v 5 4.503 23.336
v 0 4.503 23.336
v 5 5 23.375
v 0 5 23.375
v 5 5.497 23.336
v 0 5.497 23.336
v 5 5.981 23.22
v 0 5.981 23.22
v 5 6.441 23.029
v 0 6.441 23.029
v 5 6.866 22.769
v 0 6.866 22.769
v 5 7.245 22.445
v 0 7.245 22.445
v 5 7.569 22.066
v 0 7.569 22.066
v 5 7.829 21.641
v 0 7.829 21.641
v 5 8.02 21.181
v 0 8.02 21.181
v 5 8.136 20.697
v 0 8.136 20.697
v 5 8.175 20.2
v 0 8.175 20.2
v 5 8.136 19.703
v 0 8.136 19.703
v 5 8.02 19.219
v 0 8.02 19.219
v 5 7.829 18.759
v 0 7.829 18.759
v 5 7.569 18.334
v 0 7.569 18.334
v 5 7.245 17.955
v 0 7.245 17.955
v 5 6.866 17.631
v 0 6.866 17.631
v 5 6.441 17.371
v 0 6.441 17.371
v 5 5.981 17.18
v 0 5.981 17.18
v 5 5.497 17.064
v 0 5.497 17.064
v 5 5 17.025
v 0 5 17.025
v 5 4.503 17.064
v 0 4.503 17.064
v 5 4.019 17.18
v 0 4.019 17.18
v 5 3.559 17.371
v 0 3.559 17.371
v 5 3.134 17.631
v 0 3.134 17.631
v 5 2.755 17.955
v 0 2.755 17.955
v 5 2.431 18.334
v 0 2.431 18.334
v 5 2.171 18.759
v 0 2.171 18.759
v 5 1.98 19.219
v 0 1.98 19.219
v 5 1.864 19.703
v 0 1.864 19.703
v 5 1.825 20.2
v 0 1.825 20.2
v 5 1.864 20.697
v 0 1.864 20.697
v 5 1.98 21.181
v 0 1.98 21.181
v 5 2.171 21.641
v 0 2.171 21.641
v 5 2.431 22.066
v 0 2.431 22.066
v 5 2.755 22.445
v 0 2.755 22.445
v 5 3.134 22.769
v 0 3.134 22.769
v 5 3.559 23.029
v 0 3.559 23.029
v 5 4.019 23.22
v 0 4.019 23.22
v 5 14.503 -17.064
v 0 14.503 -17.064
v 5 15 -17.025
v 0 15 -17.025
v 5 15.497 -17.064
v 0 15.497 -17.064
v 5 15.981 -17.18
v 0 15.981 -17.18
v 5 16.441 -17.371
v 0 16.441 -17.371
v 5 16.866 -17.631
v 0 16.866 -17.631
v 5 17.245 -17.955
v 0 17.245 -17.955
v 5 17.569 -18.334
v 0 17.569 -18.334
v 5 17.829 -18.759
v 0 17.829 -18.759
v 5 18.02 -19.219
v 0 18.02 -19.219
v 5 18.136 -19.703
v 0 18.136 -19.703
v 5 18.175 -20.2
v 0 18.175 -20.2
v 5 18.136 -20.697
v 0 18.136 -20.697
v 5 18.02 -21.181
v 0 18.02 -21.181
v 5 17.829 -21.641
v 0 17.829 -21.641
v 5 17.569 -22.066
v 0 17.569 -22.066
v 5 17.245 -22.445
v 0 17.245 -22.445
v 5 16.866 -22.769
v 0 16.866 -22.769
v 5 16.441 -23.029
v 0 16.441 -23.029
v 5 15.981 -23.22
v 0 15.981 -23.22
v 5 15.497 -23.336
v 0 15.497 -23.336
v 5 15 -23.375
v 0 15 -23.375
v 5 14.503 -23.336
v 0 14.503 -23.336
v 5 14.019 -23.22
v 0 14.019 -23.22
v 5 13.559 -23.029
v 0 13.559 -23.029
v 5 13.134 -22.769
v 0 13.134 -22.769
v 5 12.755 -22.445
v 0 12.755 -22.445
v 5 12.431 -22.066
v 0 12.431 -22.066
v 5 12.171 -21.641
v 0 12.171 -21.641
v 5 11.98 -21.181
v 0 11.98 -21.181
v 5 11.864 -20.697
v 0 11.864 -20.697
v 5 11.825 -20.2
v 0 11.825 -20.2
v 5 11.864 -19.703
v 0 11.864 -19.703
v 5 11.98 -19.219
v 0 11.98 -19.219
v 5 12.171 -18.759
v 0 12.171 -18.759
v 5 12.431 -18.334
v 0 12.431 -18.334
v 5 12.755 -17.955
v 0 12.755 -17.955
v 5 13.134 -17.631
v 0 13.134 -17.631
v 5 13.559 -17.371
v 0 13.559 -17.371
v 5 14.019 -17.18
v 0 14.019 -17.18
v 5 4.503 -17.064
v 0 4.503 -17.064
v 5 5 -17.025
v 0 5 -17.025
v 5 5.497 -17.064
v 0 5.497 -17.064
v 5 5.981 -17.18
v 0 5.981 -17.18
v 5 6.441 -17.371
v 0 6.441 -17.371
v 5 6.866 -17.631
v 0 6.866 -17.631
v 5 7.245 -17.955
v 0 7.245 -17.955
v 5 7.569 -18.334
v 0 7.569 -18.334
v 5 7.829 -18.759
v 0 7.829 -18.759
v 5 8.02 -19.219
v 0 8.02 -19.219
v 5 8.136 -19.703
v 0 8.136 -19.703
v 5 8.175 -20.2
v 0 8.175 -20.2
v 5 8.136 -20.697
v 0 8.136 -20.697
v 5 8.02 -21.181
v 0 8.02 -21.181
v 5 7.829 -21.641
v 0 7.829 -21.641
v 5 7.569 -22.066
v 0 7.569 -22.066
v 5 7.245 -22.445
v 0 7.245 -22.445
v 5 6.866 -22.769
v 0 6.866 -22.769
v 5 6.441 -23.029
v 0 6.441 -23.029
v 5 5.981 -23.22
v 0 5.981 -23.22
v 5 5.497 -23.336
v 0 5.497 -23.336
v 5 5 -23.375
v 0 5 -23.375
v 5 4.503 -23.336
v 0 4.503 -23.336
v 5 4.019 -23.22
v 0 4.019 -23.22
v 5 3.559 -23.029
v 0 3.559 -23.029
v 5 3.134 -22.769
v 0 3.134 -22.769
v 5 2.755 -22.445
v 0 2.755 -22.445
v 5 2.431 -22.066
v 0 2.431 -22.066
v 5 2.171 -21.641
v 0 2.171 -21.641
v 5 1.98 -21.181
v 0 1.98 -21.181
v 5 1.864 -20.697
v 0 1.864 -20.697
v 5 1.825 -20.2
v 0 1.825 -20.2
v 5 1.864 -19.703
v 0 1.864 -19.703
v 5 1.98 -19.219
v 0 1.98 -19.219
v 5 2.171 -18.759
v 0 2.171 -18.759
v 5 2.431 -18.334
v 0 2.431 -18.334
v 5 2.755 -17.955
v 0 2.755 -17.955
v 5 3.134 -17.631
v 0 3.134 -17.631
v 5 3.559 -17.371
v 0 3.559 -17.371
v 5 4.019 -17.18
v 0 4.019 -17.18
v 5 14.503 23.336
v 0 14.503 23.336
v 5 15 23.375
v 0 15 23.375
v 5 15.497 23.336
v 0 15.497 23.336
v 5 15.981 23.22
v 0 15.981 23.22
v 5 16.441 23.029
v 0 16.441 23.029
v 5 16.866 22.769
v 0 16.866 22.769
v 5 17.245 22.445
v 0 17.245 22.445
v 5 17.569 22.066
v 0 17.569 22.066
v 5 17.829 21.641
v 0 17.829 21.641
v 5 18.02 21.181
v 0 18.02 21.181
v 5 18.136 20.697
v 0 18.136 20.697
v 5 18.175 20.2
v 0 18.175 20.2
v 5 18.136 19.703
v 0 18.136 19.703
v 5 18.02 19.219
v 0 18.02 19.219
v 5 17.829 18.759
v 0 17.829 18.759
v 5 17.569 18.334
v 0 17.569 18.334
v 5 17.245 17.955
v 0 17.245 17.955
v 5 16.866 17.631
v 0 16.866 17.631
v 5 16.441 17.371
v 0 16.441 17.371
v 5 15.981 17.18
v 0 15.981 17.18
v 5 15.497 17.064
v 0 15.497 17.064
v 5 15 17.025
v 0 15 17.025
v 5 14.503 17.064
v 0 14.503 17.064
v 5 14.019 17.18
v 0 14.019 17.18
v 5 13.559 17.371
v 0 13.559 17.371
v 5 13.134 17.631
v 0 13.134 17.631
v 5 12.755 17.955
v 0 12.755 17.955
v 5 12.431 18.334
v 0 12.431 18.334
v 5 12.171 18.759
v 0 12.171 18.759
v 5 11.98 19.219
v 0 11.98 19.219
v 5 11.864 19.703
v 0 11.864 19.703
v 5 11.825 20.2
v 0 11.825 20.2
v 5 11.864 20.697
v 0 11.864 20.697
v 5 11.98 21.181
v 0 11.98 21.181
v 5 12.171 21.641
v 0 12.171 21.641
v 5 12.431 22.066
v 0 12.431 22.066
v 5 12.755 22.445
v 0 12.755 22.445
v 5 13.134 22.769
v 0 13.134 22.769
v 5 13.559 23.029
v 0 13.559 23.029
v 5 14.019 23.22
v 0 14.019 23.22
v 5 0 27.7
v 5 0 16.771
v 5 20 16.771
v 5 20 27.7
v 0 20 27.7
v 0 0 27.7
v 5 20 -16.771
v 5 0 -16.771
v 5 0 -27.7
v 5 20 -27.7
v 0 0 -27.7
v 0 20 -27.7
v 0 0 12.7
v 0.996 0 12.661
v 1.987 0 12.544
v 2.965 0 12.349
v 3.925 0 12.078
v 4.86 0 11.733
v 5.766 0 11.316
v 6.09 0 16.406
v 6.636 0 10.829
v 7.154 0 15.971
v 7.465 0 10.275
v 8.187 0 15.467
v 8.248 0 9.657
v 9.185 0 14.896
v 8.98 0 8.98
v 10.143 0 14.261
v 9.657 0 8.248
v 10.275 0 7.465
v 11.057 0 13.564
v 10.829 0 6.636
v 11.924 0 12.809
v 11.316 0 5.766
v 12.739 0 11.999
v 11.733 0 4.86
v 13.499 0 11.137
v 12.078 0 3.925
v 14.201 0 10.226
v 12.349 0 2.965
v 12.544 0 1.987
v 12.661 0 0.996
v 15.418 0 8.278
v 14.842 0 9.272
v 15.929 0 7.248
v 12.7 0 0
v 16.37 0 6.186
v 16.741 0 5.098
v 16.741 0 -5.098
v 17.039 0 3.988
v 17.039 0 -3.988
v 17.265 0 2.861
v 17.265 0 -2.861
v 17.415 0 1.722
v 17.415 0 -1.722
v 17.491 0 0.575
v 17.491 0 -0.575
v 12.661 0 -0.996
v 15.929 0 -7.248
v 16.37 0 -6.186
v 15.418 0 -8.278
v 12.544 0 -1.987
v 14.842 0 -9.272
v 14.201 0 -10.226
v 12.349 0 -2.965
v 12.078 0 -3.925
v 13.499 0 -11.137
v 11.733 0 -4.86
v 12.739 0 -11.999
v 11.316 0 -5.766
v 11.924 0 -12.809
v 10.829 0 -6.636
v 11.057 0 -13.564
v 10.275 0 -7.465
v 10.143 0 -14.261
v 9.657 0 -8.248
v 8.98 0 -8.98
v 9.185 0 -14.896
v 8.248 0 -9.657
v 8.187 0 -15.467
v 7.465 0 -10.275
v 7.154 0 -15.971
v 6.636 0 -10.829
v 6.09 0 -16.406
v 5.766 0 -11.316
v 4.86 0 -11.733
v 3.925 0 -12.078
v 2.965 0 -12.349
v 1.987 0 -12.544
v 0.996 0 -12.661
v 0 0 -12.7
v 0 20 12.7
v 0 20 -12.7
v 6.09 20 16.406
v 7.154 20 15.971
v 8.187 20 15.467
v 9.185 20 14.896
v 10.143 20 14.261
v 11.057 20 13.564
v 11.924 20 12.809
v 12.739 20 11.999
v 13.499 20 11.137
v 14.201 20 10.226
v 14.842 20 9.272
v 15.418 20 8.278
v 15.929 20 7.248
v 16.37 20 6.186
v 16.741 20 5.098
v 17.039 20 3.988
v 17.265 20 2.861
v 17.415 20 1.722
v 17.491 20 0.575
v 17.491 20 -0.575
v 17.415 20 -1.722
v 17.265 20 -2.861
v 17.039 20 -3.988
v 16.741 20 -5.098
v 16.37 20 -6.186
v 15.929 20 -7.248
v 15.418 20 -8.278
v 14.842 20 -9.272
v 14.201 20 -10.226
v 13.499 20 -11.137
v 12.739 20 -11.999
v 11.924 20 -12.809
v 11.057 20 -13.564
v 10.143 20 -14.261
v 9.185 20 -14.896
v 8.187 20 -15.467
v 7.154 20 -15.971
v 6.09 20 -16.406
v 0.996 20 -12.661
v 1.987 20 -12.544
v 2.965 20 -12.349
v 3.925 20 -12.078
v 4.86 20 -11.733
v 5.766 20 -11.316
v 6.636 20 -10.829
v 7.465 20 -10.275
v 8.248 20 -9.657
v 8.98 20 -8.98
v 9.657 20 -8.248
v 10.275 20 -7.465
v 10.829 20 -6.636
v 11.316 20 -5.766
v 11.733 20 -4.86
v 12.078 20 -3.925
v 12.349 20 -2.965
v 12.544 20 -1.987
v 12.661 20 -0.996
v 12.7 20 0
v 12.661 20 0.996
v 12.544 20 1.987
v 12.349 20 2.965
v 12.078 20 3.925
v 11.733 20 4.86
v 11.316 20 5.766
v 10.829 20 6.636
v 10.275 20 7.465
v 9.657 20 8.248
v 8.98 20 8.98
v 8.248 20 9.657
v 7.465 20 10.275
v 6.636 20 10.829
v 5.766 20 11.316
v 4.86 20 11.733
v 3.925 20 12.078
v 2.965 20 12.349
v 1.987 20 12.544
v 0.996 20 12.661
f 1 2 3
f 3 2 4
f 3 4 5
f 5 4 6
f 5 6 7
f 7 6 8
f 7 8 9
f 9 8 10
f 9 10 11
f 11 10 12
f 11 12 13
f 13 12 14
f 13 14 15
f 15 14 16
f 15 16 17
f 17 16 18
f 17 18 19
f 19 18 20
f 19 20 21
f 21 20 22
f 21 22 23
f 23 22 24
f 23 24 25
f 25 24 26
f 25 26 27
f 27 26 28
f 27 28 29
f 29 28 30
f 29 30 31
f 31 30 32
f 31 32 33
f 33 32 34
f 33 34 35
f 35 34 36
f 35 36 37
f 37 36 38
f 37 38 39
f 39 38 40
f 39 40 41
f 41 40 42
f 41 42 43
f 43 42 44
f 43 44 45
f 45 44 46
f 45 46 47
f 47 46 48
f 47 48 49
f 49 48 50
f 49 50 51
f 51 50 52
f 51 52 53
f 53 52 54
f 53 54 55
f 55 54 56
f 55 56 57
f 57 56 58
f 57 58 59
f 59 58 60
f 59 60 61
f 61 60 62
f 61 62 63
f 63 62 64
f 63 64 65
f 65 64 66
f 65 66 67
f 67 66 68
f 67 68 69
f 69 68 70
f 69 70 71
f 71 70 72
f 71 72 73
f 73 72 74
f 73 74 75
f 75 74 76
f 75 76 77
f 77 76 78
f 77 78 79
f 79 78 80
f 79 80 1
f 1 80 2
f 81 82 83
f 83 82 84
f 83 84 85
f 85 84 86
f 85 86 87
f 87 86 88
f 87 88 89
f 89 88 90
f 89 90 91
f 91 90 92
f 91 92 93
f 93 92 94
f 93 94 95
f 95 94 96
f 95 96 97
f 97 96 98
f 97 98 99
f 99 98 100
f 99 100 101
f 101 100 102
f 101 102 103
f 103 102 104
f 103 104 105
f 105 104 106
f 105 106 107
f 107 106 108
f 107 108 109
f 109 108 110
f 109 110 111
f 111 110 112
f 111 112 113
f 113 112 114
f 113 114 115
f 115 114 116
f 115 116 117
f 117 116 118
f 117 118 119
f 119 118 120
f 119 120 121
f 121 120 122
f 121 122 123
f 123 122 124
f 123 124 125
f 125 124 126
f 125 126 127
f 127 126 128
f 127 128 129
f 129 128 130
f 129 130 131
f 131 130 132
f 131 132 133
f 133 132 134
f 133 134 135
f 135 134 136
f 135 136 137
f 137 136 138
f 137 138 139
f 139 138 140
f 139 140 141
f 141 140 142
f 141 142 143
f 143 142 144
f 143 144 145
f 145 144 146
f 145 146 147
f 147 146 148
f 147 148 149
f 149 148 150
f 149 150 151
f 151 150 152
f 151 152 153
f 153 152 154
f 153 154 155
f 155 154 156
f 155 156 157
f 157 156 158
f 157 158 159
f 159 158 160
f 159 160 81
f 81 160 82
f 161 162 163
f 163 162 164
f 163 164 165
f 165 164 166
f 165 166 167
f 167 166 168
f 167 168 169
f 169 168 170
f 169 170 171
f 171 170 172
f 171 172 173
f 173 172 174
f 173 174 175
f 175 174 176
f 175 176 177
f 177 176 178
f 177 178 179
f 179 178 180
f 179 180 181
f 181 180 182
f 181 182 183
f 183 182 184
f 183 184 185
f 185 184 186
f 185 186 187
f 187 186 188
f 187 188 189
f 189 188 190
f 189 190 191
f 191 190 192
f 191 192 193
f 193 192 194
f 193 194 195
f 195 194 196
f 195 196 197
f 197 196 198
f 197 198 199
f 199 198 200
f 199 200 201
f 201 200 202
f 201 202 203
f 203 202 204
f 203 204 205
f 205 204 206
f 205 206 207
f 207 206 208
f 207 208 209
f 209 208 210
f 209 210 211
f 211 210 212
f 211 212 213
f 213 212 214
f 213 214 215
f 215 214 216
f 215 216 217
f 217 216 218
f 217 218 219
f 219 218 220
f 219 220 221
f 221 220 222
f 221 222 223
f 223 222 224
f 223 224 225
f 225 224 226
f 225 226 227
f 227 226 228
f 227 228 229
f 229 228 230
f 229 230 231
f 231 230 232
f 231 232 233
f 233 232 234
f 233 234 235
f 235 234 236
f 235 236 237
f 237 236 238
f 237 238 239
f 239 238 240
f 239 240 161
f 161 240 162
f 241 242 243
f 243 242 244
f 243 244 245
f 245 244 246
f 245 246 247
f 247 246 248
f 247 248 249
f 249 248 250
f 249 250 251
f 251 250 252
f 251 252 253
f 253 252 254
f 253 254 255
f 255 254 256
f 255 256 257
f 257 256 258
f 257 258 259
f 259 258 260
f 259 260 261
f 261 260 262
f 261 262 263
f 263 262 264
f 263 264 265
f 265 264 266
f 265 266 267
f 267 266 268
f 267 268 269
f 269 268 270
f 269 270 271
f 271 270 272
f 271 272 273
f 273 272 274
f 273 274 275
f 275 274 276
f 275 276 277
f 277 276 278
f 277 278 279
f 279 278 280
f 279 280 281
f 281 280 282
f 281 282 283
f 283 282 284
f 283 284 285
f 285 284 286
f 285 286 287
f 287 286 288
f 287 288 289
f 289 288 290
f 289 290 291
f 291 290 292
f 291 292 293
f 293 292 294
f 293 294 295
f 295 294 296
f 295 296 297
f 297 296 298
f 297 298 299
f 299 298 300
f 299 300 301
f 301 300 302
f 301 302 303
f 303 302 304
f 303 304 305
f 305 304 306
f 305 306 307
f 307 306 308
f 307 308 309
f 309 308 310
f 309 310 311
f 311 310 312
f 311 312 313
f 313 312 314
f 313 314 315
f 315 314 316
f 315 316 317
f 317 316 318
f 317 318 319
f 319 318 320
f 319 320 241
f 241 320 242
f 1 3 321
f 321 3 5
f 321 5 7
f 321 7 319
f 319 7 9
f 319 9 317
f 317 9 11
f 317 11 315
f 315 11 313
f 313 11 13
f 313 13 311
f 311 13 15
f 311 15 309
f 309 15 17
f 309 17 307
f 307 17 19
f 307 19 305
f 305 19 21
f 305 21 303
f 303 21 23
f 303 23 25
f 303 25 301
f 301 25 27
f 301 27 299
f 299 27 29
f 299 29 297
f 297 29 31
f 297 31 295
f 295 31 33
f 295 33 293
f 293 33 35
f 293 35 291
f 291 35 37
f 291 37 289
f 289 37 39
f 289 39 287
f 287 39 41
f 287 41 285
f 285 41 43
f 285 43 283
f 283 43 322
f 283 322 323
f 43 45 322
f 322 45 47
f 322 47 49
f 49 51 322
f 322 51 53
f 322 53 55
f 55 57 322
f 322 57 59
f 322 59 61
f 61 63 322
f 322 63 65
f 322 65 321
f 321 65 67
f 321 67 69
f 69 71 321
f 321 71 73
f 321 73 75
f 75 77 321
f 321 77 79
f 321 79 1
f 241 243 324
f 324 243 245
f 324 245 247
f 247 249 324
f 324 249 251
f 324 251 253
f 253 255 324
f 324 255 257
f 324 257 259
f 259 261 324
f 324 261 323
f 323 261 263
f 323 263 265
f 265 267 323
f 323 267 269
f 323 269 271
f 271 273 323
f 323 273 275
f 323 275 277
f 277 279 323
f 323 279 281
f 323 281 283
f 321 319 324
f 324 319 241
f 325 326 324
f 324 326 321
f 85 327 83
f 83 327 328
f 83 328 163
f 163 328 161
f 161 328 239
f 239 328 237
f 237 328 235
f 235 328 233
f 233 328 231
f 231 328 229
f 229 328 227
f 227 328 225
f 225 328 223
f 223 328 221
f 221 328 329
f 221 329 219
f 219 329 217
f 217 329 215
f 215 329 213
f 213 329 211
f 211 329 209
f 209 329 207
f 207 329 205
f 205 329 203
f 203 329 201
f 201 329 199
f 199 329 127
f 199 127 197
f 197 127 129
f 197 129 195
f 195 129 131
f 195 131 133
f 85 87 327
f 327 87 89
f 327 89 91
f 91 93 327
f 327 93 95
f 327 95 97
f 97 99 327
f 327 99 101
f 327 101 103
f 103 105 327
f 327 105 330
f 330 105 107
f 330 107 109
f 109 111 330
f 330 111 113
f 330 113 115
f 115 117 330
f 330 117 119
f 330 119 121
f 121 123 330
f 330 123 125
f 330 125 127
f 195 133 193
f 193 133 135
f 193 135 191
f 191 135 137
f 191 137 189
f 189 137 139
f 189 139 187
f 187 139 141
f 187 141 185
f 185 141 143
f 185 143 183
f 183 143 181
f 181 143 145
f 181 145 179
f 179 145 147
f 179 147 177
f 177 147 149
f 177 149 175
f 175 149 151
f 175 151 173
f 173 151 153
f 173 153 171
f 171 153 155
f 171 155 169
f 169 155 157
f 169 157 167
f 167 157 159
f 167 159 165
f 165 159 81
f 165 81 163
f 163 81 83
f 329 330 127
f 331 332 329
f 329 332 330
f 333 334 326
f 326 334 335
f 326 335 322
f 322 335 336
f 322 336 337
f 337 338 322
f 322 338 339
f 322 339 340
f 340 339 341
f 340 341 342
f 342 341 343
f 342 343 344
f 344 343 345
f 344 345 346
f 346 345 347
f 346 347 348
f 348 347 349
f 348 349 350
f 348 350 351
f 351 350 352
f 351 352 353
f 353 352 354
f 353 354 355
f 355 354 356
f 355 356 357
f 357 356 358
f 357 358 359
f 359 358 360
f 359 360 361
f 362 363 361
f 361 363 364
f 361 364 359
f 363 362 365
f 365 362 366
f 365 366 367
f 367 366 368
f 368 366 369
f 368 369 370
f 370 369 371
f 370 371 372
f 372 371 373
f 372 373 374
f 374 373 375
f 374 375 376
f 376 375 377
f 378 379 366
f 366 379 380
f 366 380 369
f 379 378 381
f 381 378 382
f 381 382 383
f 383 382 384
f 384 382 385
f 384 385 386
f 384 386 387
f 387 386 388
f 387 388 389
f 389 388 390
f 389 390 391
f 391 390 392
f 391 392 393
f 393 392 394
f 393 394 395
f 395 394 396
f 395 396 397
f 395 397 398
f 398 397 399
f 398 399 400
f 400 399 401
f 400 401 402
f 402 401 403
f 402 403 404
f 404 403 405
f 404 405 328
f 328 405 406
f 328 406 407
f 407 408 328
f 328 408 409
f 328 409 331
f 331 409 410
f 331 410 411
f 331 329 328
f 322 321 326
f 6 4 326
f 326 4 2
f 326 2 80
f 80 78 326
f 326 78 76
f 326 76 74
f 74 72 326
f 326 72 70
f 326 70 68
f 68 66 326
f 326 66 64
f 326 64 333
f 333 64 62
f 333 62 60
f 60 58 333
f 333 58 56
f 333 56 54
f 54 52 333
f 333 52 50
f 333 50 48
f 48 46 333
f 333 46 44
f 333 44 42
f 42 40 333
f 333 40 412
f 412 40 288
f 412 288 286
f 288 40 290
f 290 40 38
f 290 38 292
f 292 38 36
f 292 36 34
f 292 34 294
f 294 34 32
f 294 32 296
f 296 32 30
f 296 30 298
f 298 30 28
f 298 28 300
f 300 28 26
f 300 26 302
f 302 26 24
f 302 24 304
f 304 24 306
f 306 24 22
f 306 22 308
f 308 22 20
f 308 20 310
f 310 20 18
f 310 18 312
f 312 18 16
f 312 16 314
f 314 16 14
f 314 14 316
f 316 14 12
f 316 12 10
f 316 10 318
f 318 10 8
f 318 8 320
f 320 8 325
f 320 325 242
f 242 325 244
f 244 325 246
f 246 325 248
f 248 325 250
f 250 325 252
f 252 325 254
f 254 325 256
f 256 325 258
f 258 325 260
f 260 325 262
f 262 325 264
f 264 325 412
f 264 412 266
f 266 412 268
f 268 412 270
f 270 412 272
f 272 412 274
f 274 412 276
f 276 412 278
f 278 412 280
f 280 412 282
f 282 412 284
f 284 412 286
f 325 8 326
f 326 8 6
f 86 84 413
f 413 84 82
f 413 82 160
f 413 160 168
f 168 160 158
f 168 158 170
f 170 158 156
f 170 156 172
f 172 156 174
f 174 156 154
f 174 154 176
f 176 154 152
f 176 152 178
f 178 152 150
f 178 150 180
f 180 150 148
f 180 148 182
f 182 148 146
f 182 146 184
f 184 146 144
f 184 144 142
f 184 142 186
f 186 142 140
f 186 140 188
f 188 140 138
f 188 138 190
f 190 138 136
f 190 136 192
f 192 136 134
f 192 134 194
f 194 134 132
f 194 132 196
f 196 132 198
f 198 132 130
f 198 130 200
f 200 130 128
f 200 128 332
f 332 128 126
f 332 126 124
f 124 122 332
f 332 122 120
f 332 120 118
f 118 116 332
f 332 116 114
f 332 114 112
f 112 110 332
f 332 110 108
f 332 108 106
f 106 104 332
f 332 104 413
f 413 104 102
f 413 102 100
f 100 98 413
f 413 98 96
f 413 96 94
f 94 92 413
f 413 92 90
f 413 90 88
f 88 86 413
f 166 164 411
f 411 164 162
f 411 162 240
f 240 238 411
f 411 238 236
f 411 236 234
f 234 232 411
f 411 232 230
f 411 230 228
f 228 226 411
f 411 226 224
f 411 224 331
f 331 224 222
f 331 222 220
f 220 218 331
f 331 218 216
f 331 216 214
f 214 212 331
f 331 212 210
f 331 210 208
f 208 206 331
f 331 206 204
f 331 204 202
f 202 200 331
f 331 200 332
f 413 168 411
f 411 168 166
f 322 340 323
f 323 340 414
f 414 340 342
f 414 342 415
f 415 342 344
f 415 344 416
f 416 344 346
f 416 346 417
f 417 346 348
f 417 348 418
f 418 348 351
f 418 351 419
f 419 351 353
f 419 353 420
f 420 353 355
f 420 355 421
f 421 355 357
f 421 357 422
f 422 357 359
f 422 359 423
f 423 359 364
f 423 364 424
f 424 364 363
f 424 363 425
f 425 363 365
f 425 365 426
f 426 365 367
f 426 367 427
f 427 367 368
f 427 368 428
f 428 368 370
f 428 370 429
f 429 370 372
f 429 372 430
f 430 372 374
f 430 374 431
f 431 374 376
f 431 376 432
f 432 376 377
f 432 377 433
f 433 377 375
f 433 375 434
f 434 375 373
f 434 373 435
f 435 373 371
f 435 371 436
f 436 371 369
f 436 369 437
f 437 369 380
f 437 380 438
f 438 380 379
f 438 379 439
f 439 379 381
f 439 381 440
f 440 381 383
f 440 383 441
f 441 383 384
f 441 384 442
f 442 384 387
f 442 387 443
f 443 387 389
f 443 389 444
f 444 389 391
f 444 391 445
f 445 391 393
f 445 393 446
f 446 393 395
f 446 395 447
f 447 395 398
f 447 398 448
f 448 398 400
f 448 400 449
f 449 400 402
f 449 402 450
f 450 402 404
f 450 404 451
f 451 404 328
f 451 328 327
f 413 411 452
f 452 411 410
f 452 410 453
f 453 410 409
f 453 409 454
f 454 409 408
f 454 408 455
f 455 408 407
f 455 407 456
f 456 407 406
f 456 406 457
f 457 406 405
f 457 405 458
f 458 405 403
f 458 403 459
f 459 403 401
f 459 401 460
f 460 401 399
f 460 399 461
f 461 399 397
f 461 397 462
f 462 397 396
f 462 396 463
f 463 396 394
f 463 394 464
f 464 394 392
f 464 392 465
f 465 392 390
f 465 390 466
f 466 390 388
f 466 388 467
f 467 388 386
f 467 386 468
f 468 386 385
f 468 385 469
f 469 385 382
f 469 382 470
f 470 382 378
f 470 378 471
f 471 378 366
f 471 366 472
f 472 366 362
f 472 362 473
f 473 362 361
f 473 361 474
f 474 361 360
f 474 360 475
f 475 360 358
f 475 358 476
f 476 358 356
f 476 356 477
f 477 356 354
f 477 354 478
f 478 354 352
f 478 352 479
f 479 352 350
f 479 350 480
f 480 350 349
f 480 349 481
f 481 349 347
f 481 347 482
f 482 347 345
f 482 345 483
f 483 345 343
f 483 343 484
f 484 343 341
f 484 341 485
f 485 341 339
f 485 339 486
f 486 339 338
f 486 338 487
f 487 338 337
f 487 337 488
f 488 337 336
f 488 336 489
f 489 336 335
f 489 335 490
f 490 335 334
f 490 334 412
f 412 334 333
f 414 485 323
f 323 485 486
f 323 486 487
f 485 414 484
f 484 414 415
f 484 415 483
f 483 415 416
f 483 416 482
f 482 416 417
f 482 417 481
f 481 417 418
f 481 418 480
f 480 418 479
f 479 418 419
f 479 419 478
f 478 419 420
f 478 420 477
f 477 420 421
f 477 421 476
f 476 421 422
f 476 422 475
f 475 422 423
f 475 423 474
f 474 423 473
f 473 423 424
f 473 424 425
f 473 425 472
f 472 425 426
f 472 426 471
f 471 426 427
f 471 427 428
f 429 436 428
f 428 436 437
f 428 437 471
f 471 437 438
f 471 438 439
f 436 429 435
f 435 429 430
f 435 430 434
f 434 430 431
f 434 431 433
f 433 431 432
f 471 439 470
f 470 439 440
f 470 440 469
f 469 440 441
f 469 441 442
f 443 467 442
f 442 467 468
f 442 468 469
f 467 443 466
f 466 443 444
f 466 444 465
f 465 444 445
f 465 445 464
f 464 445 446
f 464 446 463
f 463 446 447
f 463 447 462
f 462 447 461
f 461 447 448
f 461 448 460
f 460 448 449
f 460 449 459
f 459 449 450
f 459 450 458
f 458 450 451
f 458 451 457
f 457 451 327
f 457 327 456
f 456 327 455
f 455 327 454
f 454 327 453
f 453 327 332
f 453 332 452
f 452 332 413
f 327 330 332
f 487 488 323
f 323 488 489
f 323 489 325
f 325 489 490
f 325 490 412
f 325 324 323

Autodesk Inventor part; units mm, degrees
ref_plane "YZ Plane" through (0, 0, 0) normal (1, 0, 0) x (0, 1, 0)
ref_plane "XZ Plane" through (0, 0, 0) normal (0, 1, 0) x (-1, 0, 0)
ref_plane "XY Plane" through (0, 0, 0) normal (0, 0, 1) x (1, 0, 0)
sketch "Sketch1" plane through (0, 0, 0) normal (0, 1, 0) x (-1, 0, 0)
  circle A0 centre (0, 0) radius 12.7
  circle A1 centre (0, 0) radius 17.5
  dimension "d0" = 25.4
  dimension "d1" = 35
extrude "Extrusion1" add sketch "Sketch1" along normal blind 20
sketch "Sketch2" plane through (0, 20, 0) normal (0, 1, 0) x (1, 0, 0)
  circle A0 centre (0, 0) radius 17.5 projected
  line L0 (0, -17.5) -> (-17.5, -17.5)
  line L1 (-17.5, -17.5) -> (-17.5, 18.3836)
  line L2 (-17.5, 18.3836) -> (0, 18.3836)
  line L3 (0, 18.3836) -> (0, -17.5)
extrude "Extrusion2" cut sketch "Sketch2" against normal blind 20 contours L0 L1 A0 | A0 L3 | L1 L2 L3 A0 picked at (-8.2181, -1.8757)
sketch "Sketch3" plane through (0, 20, 12.7) normal (-1, 0, 0) x (0, 0, 1)
  line L0 (-25.4, 0) -> (-25.4, -20) projected
  line L1 (-25.4, -20) -> (-40.4, -20)
  line L2 (-40.4, -20) -> (-40.4, 0)
  line L3 (-40.4, 0) -> (-25.4, 0)
  line L4 (-25.4, 0) -> (-25.4, -20)
  line L5 (-25.4, 0) -> (0, 0) projected
  line L6 (0, 0) -> (15, 0)
  line L7 (15, 0) -> (15, -20)
  line L8 (15, -20) -> (0, -20)
  line L9 (0, -20) -> (0, 0)
  point P0 (-12.7, -20)
  dimension "d6" = 15
  dimension "d7" = 15
sketch "Sketch4" plane through (0, 20, 12.7) normal (-1, 0, 0) x (0, 0, 1)
  line L0 (-25.4, 0) -> (-25.4, -20) construction
  line L1 (-25.4, -10) -> (-40.4302, -10) construction
  line L2 (-40.4302, -10) -> (15.0302, -10) construction
  point P0 (-12.7, -20)
extrude "Extrusion3" add sketch "Sketch3" against normal blind 5
sketch "Sketch5" plane through (0, 0, 12.7) normal (-1, 0, 0) x (0, 0, 1)
  line L0 (-29.4705, 0) -> (-40.4, 0) construction
  line L1 (-40.4, 0) -> (-25.4, 10) construction
  line L2 (-25.4, 20) -> (-25.4, 0) construction
  line L3 (-40.4, 10) -> (-25.4, 0) construction
  line L4 (-25.4, 0) -> (-40.4, 10) construction
  line L5 (-25.4, 20) -> (0, 20) construction
  line L6 (-40.4, 10) -> (-25.4, 20) construction
  line L7 (-25.4, 20) -> (-40.4, 20) construction
  line L8 (-40.4, 20) -> (-25.4, 10) construction
  line L9 (0, 0) -> (-25.4, 0) construction
  line L10 (0, 0) -> (15, 10) construction
  line L11 (15, 20) -> (15, 0) construction
  line L12 (0, 0) -> (0, 20) construction
  line L13 (0, 10) -> (15, 0) construction
  line L14 (0, 10) -> (15, 20) construction
  line L15 (0, 20) -> (15, 10) construction
  circle A0 centre (-32.9, 15) radius 3.175 construction
  circle A1 centre (-32.9, 15) radius 3.175
  circle A2 centre (-32.9, 5) radius 3.175
  circle A3 centre (7.5, 5) radius 3.175
  circle A4 centre (7.5, 15) radius 3.175
  point P0 (-12.7, 0)
  dimension "d10" = 6.35
  dimension "d11" = 6.35
  dimension "d12" = 6.35
  dimension "d13" = 6.35
  dimension "d14" = 6.35
extrude "Extrusion4" cut sketch "Sketch5" against normal blind 5
properties part number "scopeCupler"
